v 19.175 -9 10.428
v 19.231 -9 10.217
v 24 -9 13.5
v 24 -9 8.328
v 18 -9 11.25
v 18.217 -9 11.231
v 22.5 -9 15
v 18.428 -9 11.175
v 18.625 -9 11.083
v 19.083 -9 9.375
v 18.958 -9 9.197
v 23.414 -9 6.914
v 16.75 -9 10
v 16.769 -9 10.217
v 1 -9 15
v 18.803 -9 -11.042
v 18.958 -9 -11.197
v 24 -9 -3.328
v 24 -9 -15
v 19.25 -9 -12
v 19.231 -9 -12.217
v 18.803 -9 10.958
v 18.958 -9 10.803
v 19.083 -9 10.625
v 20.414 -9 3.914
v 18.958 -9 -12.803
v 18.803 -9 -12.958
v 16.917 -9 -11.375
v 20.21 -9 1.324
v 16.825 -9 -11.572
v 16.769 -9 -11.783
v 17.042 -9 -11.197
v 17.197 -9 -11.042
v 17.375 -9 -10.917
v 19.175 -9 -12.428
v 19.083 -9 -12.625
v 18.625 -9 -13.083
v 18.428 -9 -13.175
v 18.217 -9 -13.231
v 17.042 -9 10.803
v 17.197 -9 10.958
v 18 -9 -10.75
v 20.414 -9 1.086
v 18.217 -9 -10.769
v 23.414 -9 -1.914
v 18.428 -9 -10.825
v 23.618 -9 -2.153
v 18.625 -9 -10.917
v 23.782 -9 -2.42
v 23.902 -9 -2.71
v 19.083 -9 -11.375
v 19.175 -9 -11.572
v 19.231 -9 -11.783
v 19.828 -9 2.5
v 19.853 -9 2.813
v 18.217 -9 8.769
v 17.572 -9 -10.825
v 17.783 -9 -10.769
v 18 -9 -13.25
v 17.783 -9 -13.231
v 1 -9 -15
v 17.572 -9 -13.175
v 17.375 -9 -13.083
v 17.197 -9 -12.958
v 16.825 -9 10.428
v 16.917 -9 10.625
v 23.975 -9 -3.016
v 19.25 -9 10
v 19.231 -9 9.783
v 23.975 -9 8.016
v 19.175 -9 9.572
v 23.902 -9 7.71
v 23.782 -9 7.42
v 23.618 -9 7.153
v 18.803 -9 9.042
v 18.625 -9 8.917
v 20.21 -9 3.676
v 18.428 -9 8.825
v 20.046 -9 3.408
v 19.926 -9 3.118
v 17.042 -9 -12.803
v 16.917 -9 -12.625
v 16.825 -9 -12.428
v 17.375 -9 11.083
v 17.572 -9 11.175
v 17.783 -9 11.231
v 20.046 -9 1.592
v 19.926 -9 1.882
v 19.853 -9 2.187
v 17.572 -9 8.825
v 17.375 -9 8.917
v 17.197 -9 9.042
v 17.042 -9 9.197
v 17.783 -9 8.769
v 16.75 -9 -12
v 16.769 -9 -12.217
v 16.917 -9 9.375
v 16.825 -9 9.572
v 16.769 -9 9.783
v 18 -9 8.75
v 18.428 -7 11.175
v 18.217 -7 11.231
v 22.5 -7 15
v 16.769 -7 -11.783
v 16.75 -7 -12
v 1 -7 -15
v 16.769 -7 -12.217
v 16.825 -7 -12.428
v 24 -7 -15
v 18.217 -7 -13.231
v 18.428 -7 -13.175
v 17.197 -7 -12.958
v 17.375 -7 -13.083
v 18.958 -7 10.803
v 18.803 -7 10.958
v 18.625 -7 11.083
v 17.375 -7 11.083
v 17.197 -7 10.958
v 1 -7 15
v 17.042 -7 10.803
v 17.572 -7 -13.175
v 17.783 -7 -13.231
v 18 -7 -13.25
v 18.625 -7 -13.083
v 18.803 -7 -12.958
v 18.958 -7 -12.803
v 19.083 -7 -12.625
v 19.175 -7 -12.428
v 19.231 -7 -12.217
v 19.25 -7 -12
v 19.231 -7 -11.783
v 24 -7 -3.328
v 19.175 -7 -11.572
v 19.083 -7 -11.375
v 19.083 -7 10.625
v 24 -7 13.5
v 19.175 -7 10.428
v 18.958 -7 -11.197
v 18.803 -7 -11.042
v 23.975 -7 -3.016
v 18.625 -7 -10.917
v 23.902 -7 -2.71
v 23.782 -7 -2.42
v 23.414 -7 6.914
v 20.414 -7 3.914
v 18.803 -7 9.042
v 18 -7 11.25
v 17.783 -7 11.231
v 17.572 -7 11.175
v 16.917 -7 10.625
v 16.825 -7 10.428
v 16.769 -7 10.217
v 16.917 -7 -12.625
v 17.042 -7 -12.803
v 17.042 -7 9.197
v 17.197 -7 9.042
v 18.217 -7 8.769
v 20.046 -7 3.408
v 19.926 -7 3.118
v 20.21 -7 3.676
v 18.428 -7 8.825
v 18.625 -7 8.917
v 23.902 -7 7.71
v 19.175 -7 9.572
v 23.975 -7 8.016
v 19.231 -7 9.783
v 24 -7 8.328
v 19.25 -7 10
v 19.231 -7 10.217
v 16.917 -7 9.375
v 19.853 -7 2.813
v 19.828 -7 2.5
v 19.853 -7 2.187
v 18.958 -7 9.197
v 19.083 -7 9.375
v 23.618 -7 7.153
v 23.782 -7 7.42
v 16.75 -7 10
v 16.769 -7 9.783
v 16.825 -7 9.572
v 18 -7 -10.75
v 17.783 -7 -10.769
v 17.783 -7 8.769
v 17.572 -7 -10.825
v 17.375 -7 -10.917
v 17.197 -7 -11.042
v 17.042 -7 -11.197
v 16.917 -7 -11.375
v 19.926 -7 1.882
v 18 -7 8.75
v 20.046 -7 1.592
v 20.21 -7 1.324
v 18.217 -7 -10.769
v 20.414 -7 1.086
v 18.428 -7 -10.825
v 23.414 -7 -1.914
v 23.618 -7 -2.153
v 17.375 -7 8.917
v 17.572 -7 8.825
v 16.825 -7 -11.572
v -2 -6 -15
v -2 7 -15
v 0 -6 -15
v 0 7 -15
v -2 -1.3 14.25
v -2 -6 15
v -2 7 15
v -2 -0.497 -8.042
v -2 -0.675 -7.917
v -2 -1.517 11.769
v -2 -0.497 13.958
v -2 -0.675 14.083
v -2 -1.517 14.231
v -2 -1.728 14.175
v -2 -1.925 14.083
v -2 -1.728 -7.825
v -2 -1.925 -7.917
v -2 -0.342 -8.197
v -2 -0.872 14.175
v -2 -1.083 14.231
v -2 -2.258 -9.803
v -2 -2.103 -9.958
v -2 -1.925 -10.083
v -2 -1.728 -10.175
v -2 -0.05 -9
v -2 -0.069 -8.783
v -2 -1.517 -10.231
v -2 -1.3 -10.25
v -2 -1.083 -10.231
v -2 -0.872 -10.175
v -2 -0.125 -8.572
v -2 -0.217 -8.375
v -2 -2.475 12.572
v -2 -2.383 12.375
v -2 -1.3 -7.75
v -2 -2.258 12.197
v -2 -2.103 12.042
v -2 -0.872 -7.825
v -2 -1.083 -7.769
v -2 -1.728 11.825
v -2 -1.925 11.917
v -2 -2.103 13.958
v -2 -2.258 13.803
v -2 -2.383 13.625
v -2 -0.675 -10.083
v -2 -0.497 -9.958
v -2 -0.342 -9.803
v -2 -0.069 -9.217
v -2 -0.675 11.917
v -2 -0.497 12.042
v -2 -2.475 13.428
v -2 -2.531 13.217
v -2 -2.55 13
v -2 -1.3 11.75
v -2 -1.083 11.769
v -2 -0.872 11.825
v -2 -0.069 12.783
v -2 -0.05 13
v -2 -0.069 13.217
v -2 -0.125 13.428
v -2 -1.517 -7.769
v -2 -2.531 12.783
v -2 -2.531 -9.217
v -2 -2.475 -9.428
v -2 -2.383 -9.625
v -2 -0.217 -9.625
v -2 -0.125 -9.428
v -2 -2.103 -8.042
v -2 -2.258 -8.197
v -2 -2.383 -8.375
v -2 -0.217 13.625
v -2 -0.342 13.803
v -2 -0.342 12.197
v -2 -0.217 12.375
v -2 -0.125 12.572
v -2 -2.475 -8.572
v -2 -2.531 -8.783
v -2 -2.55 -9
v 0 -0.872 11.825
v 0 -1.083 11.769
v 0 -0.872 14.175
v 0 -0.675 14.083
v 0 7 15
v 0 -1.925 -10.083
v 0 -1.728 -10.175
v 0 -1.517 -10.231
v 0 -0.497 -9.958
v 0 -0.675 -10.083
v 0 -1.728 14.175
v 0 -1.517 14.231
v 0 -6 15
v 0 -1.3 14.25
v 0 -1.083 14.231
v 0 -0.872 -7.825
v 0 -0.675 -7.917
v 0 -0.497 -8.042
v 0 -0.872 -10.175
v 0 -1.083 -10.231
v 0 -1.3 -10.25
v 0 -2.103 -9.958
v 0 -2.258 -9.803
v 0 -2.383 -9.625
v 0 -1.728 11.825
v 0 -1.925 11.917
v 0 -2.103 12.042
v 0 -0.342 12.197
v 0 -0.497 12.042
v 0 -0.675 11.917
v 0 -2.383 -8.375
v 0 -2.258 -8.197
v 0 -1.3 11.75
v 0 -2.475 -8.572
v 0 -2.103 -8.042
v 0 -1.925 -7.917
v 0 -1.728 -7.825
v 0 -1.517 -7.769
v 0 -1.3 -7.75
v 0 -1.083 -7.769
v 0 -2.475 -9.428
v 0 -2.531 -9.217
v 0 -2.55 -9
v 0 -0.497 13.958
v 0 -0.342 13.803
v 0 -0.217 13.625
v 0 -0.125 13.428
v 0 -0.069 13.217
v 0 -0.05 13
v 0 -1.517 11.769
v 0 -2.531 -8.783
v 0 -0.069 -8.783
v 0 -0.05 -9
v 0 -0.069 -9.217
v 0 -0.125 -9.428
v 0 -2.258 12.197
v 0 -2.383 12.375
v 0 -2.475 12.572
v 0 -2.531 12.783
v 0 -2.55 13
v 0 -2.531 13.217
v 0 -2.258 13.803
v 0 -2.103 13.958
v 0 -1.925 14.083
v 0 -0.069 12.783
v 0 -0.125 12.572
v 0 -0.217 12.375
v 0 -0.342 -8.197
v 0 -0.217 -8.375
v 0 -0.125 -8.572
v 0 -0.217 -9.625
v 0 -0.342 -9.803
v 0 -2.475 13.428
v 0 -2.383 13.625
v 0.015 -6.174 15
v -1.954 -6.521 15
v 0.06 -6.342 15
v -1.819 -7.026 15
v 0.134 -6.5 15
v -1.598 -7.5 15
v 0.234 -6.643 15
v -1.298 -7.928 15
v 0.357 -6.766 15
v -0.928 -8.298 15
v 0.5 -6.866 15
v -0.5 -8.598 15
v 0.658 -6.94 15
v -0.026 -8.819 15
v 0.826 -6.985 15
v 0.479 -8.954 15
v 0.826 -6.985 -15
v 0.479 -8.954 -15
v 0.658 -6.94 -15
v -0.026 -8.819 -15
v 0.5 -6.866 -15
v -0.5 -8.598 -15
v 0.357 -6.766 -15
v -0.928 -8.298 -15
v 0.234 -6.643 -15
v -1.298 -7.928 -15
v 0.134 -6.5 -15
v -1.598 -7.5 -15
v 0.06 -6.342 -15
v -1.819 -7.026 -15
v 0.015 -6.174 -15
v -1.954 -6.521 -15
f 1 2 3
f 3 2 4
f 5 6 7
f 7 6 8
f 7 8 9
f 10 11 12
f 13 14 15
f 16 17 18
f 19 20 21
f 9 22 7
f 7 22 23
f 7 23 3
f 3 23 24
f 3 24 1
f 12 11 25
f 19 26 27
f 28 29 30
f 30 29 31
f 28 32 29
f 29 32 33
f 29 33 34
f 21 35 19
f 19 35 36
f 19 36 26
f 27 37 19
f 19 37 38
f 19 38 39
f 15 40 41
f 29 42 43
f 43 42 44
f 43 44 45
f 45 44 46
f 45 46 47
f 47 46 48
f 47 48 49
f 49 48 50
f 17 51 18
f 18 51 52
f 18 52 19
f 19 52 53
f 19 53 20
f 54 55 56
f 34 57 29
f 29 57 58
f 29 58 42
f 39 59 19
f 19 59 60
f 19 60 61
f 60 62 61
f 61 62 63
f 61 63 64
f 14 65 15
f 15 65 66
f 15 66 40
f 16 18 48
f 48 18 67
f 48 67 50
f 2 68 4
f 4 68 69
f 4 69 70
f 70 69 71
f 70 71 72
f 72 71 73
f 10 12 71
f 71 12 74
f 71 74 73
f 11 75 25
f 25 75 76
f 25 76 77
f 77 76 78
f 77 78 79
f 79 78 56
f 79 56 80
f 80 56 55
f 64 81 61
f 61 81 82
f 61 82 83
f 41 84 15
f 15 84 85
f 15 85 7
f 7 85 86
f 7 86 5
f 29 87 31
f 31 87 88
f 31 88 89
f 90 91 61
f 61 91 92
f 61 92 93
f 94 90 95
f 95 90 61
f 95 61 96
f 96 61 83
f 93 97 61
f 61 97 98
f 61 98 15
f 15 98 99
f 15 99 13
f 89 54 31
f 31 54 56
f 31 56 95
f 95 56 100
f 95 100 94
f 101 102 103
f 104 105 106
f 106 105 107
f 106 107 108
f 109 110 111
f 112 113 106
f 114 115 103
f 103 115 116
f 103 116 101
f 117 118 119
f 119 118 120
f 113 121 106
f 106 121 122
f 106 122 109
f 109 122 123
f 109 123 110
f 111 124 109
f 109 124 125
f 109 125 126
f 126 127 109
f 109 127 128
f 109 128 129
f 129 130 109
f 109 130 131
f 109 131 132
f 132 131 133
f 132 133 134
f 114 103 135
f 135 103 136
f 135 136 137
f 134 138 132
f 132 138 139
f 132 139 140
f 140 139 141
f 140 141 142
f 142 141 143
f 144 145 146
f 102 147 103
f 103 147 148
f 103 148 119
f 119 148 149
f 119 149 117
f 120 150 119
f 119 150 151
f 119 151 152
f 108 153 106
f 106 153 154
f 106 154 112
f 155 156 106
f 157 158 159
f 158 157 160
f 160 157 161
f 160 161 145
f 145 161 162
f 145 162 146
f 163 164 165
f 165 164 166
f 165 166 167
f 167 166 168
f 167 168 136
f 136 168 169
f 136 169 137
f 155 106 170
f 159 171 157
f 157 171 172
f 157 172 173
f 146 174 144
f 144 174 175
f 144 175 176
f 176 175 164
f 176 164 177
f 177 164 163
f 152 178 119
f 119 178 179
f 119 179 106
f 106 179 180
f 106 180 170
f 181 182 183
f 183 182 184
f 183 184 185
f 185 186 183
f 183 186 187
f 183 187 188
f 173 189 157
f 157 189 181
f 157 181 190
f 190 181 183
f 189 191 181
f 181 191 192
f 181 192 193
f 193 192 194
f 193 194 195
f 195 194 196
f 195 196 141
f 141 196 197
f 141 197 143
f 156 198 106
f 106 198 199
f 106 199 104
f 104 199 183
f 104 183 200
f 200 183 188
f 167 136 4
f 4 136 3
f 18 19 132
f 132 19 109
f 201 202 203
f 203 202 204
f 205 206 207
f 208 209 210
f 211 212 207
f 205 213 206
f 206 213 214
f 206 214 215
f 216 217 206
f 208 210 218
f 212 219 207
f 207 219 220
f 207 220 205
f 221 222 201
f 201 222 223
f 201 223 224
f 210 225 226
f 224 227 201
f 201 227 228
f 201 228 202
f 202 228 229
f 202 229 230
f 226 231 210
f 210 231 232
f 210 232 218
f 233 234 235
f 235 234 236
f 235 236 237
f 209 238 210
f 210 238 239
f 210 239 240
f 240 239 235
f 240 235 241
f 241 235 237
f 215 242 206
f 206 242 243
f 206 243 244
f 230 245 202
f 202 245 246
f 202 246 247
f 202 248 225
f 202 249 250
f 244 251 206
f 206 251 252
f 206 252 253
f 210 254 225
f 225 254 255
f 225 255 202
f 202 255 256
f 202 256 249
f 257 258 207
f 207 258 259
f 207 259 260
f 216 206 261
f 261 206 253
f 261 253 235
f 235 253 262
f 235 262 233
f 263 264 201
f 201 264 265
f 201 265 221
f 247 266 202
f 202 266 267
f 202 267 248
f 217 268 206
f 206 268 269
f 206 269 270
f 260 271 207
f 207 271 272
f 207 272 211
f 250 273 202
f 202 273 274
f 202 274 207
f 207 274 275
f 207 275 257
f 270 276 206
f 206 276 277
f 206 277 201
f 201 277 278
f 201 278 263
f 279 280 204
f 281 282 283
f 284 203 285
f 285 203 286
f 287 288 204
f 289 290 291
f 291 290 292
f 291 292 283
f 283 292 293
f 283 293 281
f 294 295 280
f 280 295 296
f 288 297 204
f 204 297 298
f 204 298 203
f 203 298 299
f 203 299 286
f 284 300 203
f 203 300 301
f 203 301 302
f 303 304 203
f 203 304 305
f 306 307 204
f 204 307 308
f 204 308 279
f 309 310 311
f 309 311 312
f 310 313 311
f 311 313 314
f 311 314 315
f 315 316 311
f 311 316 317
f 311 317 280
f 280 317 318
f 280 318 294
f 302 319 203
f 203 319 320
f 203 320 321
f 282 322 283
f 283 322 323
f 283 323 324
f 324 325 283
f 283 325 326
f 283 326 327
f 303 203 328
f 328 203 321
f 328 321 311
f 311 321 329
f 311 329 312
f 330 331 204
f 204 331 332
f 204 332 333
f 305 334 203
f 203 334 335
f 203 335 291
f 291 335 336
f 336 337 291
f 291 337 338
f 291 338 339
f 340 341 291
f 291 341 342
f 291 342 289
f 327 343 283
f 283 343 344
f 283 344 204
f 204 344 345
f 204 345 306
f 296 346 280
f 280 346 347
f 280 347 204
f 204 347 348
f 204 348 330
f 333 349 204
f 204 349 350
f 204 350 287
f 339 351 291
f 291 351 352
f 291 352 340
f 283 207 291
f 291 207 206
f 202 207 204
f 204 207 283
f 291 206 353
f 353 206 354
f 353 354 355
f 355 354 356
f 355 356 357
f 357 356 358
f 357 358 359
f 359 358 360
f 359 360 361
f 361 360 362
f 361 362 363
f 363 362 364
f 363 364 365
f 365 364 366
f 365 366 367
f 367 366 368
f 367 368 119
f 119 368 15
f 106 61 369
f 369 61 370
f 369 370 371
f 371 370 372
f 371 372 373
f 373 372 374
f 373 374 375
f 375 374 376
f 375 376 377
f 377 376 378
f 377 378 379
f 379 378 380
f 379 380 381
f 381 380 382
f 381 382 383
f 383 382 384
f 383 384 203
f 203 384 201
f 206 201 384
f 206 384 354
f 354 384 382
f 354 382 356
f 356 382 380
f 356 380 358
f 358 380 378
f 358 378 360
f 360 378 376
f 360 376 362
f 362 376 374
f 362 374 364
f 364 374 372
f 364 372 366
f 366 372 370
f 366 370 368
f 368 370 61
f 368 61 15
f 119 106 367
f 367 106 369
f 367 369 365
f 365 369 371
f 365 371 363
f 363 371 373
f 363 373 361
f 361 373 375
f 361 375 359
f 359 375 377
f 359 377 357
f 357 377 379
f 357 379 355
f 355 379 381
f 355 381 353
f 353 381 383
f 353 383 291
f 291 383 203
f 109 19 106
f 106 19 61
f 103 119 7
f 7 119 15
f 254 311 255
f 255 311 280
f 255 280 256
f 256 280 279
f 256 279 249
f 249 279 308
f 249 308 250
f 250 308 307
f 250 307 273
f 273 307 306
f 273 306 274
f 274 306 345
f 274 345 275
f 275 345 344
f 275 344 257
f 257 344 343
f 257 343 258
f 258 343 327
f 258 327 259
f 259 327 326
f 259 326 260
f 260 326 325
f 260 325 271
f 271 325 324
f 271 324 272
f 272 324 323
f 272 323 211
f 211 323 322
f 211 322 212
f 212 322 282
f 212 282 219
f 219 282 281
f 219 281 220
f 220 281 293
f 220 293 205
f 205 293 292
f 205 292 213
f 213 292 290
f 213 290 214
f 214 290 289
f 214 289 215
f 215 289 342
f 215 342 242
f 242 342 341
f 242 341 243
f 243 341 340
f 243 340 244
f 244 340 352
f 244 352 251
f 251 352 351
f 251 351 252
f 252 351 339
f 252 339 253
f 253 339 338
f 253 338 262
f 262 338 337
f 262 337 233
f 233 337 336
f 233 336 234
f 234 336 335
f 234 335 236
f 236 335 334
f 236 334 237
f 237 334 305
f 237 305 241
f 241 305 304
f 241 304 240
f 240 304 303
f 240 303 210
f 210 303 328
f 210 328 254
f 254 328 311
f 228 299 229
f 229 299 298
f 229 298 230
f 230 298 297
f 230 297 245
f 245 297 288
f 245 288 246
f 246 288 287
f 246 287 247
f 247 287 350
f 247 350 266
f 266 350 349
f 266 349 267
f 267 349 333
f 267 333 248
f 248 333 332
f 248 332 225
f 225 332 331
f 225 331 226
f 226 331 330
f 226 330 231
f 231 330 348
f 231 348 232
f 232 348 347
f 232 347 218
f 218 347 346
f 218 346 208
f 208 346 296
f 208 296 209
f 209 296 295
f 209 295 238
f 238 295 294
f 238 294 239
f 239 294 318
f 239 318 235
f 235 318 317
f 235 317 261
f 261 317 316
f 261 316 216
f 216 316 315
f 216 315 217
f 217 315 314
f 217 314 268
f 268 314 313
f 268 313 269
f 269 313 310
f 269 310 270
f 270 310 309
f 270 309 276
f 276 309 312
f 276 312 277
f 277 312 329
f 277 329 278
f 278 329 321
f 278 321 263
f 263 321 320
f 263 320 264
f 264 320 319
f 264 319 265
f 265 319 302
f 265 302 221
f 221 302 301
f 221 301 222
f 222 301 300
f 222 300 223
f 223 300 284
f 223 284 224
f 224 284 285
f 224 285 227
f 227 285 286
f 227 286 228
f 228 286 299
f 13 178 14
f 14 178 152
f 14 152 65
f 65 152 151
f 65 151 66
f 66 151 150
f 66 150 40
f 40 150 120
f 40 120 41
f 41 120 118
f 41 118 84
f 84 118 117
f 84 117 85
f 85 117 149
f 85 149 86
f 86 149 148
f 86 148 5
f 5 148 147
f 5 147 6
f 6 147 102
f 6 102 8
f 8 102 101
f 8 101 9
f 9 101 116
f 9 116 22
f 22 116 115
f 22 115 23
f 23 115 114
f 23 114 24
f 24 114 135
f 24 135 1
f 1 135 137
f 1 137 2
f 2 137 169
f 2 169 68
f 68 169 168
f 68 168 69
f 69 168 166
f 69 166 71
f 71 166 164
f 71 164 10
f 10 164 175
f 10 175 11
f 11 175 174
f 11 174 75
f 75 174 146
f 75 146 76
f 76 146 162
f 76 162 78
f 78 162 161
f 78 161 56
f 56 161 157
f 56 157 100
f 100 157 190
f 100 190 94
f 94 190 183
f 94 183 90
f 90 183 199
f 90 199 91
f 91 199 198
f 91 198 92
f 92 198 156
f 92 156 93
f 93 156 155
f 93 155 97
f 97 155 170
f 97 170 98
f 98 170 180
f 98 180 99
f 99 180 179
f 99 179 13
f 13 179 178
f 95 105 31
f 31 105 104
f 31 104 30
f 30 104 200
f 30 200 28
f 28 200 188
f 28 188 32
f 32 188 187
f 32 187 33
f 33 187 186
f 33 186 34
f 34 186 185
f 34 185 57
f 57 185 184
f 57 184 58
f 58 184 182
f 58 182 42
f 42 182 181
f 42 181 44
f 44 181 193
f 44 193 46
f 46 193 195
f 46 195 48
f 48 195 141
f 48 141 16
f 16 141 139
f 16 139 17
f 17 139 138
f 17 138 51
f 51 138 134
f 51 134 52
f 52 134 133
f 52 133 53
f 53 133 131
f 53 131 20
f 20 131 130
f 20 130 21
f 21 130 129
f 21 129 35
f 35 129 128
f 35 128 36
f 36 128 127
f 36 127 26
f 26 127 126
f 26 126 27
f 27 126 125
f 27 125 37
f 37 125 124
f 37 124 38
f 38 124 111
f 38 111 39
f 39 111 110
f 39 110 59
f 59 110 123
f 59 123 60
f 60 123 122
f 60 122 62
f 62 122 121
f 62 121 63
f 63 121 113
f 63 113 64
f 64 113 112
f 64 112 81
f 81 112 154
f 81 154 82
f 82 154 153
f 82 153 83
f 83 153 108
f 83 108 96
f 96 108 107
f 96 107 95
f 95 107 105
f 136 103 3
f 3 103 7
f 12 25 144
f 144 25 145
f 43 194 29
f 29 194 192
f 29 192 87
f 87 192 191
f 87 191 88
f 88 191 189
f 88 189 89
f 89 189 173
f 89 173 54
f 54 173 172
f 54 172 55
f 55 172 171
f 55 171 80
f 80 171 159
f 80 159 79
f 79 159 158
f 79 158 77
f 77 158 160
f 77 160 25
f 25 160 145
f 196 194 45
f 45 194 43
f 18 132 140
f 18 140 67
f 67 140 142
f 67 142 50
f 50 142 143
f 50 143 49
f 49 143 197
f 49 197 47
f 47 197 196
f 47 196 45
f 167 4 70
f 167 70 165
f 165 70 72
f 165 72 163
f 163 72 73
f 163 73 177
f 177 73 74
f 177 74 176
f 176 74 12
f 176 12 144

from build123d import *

# Parameters (mm, degrees)
ESBO_O1_W                      = 30
ESBO_O1_H                      = 14
FLANGE_BASE1_DEPTH             = 2
ARESTA_FLANGE1_STRIP_W         = 10
ARESTA_FLANGE1_STRIP_H         = 2
ARESTA_FLANGE1_STRIP_CUT_DEPTH = 30
ARESTA_FLANGE1_DEPTH           = 30
ESBO_O10_R                     = 1.25
CORTE_EXTRUS_O1_DEPTH          = 2
ESBO_O11_R                     = 1.25
CORTE_EXTRUS_O2_DEPTH          = 2
CHANFRO1_SIZE                  = 1.5
CORTE_EXTRUS_O3_DEPTH          = 2
FILETE1_R                      = 2


# Sheet-metal steps are written as plain solids
with BuildPart() as part:
    # Esboço1 → Flange-base1 (new body)
    with BuildSketch(Plane(origin=(0, 0, 0), x_dir=(0, 0, -1), z_dir=(1, 0, 0))):
        Rectangle(ESBO_O1_W, ESBO_O1_H)
    extrude(amount=-FLANGE_BASE1_DEPTH)

    # Aresta-Flange1 strip (across the edge) → Aresta-Flange1 strip cut (cut)
    with BuildSketch(Plane(origin=(0, -7, 15), x_dir=(0, 1, 0), z_dir=(0, 0, -1))):
        with Locations((-4, -1)):
            Rectangle(ARESTA_FLANGE1_STRIP_W, ARESTA_FLANGE1_STRIP_H)
    extrude(amount=ARESTA_FLANGE1_STRIP_CUT_DEPTH, mode=Mode.SUBTRACT)

    # Aresta-Flange1 section (across the edge) → Aresta-Flange1 (add)
    with BuildSketch(Plane(origin=(0, -7, 15), x_dir=(0, 1, 0), z_dir=(0, 0, -1))):
        with BuildLine():
            Line((-2, 1), (-2, 24))
            Line((-2, 24), (0, 24))
            Line((0, 24), (0, 1))
            ThreePointArc((0, 1), (0.292893219, 0.292893219), (1, 0))
            Line((1, 0), (1, -2))
            ThreePointArc((1, -2), (-1.121320344, -1.121320344), (-2, 1))
        make_face()
    extrude(amount=ARESTA_FLANGE1_DEPTH)

    # Esboço10 → Corte-extrusão1 (cut)
    with BuildSketch(Plane(origin=(0, 0, 0), x_dir=(0, 0, -1), z_dir=(1, 0, 0))):
        with Locations((-13, -1.3)):
            Circle(ESBO_O10_R)
        with Locations((9, -1.3)):
            Circle(ESBO_O10_R)
    extrude(amount=-CORTE_EXTRUS_O1_DEPTH, mode=Mode.SUBTRACT)

    # Esboço11 → Corte-extrusão2 (cut)
    with BuildSketch(Plane(origin=(0, -7, 0), x_dir=(1, 0, 0), z_dir=(0, 1, 0))):
        with Locations(Location((18, -10, 0), (0, 0, 180))):
            Circle(ESBO_O11_R)
        with Locations(Location((18, 12, 0), (0, 0, 180))):
            Circle(ESBO_O11_R)
    extrude(amount=-CORTE_EXTRUS_O2_DEPTH, mode=Mode.SUBTRACT)

    # Chanfro1
    chanfro1_edges = [part.edges().sort_by_distance(p)[0] for p in [
        (24, -8, 15),
    ]]
    chamfer(chanfro1_edges, length=CHANFRO1_SIZE)

    # Esboço12 → Corte-extrusão3 (cut)
    with BuildSketch(Plane(origin=(0, -7, 0), x_dir=(1, 0, 0), z_dir=(0, 1, 0))):
        with BuildLine():
            Line((19.828427125, -2.5), (24, -2.5))
            Line((24, -2.5), (24, 2.5))
            Line((24, 2.5), (20.414213562, -1.085786438))
            ThreePointArc((20.414213562, -1.085786438), (19.98066806, -1.734633135), (19.828427125, -2.5))
        make_face()
        with BuildLine():
            Line((24, -7.5), (24, -2.5))
            Line((24, -2.5), (19.828427125, -2.5))
            ThreePointArc((19.828427125, -2.5), (19.98066806, -3.265366865), (20.414213562, -3.914213562))
            Line((20.414213562, -3.914213562), (24, -7.5))
        make_face()
    extrude(amount=-CORTE_EXTRUS_O3_DEPTH, mode=Mode.SUBTRACT)

    # Filete1
    filete1_edges = [part.edges().sort_by_distance(p)[0] for p in [
        (24, -8, -2.5),
        (24, -8, 7.5),
    ]]
    fillet(filete1_edges, radius=FILETE1_R)


solid = part.part
